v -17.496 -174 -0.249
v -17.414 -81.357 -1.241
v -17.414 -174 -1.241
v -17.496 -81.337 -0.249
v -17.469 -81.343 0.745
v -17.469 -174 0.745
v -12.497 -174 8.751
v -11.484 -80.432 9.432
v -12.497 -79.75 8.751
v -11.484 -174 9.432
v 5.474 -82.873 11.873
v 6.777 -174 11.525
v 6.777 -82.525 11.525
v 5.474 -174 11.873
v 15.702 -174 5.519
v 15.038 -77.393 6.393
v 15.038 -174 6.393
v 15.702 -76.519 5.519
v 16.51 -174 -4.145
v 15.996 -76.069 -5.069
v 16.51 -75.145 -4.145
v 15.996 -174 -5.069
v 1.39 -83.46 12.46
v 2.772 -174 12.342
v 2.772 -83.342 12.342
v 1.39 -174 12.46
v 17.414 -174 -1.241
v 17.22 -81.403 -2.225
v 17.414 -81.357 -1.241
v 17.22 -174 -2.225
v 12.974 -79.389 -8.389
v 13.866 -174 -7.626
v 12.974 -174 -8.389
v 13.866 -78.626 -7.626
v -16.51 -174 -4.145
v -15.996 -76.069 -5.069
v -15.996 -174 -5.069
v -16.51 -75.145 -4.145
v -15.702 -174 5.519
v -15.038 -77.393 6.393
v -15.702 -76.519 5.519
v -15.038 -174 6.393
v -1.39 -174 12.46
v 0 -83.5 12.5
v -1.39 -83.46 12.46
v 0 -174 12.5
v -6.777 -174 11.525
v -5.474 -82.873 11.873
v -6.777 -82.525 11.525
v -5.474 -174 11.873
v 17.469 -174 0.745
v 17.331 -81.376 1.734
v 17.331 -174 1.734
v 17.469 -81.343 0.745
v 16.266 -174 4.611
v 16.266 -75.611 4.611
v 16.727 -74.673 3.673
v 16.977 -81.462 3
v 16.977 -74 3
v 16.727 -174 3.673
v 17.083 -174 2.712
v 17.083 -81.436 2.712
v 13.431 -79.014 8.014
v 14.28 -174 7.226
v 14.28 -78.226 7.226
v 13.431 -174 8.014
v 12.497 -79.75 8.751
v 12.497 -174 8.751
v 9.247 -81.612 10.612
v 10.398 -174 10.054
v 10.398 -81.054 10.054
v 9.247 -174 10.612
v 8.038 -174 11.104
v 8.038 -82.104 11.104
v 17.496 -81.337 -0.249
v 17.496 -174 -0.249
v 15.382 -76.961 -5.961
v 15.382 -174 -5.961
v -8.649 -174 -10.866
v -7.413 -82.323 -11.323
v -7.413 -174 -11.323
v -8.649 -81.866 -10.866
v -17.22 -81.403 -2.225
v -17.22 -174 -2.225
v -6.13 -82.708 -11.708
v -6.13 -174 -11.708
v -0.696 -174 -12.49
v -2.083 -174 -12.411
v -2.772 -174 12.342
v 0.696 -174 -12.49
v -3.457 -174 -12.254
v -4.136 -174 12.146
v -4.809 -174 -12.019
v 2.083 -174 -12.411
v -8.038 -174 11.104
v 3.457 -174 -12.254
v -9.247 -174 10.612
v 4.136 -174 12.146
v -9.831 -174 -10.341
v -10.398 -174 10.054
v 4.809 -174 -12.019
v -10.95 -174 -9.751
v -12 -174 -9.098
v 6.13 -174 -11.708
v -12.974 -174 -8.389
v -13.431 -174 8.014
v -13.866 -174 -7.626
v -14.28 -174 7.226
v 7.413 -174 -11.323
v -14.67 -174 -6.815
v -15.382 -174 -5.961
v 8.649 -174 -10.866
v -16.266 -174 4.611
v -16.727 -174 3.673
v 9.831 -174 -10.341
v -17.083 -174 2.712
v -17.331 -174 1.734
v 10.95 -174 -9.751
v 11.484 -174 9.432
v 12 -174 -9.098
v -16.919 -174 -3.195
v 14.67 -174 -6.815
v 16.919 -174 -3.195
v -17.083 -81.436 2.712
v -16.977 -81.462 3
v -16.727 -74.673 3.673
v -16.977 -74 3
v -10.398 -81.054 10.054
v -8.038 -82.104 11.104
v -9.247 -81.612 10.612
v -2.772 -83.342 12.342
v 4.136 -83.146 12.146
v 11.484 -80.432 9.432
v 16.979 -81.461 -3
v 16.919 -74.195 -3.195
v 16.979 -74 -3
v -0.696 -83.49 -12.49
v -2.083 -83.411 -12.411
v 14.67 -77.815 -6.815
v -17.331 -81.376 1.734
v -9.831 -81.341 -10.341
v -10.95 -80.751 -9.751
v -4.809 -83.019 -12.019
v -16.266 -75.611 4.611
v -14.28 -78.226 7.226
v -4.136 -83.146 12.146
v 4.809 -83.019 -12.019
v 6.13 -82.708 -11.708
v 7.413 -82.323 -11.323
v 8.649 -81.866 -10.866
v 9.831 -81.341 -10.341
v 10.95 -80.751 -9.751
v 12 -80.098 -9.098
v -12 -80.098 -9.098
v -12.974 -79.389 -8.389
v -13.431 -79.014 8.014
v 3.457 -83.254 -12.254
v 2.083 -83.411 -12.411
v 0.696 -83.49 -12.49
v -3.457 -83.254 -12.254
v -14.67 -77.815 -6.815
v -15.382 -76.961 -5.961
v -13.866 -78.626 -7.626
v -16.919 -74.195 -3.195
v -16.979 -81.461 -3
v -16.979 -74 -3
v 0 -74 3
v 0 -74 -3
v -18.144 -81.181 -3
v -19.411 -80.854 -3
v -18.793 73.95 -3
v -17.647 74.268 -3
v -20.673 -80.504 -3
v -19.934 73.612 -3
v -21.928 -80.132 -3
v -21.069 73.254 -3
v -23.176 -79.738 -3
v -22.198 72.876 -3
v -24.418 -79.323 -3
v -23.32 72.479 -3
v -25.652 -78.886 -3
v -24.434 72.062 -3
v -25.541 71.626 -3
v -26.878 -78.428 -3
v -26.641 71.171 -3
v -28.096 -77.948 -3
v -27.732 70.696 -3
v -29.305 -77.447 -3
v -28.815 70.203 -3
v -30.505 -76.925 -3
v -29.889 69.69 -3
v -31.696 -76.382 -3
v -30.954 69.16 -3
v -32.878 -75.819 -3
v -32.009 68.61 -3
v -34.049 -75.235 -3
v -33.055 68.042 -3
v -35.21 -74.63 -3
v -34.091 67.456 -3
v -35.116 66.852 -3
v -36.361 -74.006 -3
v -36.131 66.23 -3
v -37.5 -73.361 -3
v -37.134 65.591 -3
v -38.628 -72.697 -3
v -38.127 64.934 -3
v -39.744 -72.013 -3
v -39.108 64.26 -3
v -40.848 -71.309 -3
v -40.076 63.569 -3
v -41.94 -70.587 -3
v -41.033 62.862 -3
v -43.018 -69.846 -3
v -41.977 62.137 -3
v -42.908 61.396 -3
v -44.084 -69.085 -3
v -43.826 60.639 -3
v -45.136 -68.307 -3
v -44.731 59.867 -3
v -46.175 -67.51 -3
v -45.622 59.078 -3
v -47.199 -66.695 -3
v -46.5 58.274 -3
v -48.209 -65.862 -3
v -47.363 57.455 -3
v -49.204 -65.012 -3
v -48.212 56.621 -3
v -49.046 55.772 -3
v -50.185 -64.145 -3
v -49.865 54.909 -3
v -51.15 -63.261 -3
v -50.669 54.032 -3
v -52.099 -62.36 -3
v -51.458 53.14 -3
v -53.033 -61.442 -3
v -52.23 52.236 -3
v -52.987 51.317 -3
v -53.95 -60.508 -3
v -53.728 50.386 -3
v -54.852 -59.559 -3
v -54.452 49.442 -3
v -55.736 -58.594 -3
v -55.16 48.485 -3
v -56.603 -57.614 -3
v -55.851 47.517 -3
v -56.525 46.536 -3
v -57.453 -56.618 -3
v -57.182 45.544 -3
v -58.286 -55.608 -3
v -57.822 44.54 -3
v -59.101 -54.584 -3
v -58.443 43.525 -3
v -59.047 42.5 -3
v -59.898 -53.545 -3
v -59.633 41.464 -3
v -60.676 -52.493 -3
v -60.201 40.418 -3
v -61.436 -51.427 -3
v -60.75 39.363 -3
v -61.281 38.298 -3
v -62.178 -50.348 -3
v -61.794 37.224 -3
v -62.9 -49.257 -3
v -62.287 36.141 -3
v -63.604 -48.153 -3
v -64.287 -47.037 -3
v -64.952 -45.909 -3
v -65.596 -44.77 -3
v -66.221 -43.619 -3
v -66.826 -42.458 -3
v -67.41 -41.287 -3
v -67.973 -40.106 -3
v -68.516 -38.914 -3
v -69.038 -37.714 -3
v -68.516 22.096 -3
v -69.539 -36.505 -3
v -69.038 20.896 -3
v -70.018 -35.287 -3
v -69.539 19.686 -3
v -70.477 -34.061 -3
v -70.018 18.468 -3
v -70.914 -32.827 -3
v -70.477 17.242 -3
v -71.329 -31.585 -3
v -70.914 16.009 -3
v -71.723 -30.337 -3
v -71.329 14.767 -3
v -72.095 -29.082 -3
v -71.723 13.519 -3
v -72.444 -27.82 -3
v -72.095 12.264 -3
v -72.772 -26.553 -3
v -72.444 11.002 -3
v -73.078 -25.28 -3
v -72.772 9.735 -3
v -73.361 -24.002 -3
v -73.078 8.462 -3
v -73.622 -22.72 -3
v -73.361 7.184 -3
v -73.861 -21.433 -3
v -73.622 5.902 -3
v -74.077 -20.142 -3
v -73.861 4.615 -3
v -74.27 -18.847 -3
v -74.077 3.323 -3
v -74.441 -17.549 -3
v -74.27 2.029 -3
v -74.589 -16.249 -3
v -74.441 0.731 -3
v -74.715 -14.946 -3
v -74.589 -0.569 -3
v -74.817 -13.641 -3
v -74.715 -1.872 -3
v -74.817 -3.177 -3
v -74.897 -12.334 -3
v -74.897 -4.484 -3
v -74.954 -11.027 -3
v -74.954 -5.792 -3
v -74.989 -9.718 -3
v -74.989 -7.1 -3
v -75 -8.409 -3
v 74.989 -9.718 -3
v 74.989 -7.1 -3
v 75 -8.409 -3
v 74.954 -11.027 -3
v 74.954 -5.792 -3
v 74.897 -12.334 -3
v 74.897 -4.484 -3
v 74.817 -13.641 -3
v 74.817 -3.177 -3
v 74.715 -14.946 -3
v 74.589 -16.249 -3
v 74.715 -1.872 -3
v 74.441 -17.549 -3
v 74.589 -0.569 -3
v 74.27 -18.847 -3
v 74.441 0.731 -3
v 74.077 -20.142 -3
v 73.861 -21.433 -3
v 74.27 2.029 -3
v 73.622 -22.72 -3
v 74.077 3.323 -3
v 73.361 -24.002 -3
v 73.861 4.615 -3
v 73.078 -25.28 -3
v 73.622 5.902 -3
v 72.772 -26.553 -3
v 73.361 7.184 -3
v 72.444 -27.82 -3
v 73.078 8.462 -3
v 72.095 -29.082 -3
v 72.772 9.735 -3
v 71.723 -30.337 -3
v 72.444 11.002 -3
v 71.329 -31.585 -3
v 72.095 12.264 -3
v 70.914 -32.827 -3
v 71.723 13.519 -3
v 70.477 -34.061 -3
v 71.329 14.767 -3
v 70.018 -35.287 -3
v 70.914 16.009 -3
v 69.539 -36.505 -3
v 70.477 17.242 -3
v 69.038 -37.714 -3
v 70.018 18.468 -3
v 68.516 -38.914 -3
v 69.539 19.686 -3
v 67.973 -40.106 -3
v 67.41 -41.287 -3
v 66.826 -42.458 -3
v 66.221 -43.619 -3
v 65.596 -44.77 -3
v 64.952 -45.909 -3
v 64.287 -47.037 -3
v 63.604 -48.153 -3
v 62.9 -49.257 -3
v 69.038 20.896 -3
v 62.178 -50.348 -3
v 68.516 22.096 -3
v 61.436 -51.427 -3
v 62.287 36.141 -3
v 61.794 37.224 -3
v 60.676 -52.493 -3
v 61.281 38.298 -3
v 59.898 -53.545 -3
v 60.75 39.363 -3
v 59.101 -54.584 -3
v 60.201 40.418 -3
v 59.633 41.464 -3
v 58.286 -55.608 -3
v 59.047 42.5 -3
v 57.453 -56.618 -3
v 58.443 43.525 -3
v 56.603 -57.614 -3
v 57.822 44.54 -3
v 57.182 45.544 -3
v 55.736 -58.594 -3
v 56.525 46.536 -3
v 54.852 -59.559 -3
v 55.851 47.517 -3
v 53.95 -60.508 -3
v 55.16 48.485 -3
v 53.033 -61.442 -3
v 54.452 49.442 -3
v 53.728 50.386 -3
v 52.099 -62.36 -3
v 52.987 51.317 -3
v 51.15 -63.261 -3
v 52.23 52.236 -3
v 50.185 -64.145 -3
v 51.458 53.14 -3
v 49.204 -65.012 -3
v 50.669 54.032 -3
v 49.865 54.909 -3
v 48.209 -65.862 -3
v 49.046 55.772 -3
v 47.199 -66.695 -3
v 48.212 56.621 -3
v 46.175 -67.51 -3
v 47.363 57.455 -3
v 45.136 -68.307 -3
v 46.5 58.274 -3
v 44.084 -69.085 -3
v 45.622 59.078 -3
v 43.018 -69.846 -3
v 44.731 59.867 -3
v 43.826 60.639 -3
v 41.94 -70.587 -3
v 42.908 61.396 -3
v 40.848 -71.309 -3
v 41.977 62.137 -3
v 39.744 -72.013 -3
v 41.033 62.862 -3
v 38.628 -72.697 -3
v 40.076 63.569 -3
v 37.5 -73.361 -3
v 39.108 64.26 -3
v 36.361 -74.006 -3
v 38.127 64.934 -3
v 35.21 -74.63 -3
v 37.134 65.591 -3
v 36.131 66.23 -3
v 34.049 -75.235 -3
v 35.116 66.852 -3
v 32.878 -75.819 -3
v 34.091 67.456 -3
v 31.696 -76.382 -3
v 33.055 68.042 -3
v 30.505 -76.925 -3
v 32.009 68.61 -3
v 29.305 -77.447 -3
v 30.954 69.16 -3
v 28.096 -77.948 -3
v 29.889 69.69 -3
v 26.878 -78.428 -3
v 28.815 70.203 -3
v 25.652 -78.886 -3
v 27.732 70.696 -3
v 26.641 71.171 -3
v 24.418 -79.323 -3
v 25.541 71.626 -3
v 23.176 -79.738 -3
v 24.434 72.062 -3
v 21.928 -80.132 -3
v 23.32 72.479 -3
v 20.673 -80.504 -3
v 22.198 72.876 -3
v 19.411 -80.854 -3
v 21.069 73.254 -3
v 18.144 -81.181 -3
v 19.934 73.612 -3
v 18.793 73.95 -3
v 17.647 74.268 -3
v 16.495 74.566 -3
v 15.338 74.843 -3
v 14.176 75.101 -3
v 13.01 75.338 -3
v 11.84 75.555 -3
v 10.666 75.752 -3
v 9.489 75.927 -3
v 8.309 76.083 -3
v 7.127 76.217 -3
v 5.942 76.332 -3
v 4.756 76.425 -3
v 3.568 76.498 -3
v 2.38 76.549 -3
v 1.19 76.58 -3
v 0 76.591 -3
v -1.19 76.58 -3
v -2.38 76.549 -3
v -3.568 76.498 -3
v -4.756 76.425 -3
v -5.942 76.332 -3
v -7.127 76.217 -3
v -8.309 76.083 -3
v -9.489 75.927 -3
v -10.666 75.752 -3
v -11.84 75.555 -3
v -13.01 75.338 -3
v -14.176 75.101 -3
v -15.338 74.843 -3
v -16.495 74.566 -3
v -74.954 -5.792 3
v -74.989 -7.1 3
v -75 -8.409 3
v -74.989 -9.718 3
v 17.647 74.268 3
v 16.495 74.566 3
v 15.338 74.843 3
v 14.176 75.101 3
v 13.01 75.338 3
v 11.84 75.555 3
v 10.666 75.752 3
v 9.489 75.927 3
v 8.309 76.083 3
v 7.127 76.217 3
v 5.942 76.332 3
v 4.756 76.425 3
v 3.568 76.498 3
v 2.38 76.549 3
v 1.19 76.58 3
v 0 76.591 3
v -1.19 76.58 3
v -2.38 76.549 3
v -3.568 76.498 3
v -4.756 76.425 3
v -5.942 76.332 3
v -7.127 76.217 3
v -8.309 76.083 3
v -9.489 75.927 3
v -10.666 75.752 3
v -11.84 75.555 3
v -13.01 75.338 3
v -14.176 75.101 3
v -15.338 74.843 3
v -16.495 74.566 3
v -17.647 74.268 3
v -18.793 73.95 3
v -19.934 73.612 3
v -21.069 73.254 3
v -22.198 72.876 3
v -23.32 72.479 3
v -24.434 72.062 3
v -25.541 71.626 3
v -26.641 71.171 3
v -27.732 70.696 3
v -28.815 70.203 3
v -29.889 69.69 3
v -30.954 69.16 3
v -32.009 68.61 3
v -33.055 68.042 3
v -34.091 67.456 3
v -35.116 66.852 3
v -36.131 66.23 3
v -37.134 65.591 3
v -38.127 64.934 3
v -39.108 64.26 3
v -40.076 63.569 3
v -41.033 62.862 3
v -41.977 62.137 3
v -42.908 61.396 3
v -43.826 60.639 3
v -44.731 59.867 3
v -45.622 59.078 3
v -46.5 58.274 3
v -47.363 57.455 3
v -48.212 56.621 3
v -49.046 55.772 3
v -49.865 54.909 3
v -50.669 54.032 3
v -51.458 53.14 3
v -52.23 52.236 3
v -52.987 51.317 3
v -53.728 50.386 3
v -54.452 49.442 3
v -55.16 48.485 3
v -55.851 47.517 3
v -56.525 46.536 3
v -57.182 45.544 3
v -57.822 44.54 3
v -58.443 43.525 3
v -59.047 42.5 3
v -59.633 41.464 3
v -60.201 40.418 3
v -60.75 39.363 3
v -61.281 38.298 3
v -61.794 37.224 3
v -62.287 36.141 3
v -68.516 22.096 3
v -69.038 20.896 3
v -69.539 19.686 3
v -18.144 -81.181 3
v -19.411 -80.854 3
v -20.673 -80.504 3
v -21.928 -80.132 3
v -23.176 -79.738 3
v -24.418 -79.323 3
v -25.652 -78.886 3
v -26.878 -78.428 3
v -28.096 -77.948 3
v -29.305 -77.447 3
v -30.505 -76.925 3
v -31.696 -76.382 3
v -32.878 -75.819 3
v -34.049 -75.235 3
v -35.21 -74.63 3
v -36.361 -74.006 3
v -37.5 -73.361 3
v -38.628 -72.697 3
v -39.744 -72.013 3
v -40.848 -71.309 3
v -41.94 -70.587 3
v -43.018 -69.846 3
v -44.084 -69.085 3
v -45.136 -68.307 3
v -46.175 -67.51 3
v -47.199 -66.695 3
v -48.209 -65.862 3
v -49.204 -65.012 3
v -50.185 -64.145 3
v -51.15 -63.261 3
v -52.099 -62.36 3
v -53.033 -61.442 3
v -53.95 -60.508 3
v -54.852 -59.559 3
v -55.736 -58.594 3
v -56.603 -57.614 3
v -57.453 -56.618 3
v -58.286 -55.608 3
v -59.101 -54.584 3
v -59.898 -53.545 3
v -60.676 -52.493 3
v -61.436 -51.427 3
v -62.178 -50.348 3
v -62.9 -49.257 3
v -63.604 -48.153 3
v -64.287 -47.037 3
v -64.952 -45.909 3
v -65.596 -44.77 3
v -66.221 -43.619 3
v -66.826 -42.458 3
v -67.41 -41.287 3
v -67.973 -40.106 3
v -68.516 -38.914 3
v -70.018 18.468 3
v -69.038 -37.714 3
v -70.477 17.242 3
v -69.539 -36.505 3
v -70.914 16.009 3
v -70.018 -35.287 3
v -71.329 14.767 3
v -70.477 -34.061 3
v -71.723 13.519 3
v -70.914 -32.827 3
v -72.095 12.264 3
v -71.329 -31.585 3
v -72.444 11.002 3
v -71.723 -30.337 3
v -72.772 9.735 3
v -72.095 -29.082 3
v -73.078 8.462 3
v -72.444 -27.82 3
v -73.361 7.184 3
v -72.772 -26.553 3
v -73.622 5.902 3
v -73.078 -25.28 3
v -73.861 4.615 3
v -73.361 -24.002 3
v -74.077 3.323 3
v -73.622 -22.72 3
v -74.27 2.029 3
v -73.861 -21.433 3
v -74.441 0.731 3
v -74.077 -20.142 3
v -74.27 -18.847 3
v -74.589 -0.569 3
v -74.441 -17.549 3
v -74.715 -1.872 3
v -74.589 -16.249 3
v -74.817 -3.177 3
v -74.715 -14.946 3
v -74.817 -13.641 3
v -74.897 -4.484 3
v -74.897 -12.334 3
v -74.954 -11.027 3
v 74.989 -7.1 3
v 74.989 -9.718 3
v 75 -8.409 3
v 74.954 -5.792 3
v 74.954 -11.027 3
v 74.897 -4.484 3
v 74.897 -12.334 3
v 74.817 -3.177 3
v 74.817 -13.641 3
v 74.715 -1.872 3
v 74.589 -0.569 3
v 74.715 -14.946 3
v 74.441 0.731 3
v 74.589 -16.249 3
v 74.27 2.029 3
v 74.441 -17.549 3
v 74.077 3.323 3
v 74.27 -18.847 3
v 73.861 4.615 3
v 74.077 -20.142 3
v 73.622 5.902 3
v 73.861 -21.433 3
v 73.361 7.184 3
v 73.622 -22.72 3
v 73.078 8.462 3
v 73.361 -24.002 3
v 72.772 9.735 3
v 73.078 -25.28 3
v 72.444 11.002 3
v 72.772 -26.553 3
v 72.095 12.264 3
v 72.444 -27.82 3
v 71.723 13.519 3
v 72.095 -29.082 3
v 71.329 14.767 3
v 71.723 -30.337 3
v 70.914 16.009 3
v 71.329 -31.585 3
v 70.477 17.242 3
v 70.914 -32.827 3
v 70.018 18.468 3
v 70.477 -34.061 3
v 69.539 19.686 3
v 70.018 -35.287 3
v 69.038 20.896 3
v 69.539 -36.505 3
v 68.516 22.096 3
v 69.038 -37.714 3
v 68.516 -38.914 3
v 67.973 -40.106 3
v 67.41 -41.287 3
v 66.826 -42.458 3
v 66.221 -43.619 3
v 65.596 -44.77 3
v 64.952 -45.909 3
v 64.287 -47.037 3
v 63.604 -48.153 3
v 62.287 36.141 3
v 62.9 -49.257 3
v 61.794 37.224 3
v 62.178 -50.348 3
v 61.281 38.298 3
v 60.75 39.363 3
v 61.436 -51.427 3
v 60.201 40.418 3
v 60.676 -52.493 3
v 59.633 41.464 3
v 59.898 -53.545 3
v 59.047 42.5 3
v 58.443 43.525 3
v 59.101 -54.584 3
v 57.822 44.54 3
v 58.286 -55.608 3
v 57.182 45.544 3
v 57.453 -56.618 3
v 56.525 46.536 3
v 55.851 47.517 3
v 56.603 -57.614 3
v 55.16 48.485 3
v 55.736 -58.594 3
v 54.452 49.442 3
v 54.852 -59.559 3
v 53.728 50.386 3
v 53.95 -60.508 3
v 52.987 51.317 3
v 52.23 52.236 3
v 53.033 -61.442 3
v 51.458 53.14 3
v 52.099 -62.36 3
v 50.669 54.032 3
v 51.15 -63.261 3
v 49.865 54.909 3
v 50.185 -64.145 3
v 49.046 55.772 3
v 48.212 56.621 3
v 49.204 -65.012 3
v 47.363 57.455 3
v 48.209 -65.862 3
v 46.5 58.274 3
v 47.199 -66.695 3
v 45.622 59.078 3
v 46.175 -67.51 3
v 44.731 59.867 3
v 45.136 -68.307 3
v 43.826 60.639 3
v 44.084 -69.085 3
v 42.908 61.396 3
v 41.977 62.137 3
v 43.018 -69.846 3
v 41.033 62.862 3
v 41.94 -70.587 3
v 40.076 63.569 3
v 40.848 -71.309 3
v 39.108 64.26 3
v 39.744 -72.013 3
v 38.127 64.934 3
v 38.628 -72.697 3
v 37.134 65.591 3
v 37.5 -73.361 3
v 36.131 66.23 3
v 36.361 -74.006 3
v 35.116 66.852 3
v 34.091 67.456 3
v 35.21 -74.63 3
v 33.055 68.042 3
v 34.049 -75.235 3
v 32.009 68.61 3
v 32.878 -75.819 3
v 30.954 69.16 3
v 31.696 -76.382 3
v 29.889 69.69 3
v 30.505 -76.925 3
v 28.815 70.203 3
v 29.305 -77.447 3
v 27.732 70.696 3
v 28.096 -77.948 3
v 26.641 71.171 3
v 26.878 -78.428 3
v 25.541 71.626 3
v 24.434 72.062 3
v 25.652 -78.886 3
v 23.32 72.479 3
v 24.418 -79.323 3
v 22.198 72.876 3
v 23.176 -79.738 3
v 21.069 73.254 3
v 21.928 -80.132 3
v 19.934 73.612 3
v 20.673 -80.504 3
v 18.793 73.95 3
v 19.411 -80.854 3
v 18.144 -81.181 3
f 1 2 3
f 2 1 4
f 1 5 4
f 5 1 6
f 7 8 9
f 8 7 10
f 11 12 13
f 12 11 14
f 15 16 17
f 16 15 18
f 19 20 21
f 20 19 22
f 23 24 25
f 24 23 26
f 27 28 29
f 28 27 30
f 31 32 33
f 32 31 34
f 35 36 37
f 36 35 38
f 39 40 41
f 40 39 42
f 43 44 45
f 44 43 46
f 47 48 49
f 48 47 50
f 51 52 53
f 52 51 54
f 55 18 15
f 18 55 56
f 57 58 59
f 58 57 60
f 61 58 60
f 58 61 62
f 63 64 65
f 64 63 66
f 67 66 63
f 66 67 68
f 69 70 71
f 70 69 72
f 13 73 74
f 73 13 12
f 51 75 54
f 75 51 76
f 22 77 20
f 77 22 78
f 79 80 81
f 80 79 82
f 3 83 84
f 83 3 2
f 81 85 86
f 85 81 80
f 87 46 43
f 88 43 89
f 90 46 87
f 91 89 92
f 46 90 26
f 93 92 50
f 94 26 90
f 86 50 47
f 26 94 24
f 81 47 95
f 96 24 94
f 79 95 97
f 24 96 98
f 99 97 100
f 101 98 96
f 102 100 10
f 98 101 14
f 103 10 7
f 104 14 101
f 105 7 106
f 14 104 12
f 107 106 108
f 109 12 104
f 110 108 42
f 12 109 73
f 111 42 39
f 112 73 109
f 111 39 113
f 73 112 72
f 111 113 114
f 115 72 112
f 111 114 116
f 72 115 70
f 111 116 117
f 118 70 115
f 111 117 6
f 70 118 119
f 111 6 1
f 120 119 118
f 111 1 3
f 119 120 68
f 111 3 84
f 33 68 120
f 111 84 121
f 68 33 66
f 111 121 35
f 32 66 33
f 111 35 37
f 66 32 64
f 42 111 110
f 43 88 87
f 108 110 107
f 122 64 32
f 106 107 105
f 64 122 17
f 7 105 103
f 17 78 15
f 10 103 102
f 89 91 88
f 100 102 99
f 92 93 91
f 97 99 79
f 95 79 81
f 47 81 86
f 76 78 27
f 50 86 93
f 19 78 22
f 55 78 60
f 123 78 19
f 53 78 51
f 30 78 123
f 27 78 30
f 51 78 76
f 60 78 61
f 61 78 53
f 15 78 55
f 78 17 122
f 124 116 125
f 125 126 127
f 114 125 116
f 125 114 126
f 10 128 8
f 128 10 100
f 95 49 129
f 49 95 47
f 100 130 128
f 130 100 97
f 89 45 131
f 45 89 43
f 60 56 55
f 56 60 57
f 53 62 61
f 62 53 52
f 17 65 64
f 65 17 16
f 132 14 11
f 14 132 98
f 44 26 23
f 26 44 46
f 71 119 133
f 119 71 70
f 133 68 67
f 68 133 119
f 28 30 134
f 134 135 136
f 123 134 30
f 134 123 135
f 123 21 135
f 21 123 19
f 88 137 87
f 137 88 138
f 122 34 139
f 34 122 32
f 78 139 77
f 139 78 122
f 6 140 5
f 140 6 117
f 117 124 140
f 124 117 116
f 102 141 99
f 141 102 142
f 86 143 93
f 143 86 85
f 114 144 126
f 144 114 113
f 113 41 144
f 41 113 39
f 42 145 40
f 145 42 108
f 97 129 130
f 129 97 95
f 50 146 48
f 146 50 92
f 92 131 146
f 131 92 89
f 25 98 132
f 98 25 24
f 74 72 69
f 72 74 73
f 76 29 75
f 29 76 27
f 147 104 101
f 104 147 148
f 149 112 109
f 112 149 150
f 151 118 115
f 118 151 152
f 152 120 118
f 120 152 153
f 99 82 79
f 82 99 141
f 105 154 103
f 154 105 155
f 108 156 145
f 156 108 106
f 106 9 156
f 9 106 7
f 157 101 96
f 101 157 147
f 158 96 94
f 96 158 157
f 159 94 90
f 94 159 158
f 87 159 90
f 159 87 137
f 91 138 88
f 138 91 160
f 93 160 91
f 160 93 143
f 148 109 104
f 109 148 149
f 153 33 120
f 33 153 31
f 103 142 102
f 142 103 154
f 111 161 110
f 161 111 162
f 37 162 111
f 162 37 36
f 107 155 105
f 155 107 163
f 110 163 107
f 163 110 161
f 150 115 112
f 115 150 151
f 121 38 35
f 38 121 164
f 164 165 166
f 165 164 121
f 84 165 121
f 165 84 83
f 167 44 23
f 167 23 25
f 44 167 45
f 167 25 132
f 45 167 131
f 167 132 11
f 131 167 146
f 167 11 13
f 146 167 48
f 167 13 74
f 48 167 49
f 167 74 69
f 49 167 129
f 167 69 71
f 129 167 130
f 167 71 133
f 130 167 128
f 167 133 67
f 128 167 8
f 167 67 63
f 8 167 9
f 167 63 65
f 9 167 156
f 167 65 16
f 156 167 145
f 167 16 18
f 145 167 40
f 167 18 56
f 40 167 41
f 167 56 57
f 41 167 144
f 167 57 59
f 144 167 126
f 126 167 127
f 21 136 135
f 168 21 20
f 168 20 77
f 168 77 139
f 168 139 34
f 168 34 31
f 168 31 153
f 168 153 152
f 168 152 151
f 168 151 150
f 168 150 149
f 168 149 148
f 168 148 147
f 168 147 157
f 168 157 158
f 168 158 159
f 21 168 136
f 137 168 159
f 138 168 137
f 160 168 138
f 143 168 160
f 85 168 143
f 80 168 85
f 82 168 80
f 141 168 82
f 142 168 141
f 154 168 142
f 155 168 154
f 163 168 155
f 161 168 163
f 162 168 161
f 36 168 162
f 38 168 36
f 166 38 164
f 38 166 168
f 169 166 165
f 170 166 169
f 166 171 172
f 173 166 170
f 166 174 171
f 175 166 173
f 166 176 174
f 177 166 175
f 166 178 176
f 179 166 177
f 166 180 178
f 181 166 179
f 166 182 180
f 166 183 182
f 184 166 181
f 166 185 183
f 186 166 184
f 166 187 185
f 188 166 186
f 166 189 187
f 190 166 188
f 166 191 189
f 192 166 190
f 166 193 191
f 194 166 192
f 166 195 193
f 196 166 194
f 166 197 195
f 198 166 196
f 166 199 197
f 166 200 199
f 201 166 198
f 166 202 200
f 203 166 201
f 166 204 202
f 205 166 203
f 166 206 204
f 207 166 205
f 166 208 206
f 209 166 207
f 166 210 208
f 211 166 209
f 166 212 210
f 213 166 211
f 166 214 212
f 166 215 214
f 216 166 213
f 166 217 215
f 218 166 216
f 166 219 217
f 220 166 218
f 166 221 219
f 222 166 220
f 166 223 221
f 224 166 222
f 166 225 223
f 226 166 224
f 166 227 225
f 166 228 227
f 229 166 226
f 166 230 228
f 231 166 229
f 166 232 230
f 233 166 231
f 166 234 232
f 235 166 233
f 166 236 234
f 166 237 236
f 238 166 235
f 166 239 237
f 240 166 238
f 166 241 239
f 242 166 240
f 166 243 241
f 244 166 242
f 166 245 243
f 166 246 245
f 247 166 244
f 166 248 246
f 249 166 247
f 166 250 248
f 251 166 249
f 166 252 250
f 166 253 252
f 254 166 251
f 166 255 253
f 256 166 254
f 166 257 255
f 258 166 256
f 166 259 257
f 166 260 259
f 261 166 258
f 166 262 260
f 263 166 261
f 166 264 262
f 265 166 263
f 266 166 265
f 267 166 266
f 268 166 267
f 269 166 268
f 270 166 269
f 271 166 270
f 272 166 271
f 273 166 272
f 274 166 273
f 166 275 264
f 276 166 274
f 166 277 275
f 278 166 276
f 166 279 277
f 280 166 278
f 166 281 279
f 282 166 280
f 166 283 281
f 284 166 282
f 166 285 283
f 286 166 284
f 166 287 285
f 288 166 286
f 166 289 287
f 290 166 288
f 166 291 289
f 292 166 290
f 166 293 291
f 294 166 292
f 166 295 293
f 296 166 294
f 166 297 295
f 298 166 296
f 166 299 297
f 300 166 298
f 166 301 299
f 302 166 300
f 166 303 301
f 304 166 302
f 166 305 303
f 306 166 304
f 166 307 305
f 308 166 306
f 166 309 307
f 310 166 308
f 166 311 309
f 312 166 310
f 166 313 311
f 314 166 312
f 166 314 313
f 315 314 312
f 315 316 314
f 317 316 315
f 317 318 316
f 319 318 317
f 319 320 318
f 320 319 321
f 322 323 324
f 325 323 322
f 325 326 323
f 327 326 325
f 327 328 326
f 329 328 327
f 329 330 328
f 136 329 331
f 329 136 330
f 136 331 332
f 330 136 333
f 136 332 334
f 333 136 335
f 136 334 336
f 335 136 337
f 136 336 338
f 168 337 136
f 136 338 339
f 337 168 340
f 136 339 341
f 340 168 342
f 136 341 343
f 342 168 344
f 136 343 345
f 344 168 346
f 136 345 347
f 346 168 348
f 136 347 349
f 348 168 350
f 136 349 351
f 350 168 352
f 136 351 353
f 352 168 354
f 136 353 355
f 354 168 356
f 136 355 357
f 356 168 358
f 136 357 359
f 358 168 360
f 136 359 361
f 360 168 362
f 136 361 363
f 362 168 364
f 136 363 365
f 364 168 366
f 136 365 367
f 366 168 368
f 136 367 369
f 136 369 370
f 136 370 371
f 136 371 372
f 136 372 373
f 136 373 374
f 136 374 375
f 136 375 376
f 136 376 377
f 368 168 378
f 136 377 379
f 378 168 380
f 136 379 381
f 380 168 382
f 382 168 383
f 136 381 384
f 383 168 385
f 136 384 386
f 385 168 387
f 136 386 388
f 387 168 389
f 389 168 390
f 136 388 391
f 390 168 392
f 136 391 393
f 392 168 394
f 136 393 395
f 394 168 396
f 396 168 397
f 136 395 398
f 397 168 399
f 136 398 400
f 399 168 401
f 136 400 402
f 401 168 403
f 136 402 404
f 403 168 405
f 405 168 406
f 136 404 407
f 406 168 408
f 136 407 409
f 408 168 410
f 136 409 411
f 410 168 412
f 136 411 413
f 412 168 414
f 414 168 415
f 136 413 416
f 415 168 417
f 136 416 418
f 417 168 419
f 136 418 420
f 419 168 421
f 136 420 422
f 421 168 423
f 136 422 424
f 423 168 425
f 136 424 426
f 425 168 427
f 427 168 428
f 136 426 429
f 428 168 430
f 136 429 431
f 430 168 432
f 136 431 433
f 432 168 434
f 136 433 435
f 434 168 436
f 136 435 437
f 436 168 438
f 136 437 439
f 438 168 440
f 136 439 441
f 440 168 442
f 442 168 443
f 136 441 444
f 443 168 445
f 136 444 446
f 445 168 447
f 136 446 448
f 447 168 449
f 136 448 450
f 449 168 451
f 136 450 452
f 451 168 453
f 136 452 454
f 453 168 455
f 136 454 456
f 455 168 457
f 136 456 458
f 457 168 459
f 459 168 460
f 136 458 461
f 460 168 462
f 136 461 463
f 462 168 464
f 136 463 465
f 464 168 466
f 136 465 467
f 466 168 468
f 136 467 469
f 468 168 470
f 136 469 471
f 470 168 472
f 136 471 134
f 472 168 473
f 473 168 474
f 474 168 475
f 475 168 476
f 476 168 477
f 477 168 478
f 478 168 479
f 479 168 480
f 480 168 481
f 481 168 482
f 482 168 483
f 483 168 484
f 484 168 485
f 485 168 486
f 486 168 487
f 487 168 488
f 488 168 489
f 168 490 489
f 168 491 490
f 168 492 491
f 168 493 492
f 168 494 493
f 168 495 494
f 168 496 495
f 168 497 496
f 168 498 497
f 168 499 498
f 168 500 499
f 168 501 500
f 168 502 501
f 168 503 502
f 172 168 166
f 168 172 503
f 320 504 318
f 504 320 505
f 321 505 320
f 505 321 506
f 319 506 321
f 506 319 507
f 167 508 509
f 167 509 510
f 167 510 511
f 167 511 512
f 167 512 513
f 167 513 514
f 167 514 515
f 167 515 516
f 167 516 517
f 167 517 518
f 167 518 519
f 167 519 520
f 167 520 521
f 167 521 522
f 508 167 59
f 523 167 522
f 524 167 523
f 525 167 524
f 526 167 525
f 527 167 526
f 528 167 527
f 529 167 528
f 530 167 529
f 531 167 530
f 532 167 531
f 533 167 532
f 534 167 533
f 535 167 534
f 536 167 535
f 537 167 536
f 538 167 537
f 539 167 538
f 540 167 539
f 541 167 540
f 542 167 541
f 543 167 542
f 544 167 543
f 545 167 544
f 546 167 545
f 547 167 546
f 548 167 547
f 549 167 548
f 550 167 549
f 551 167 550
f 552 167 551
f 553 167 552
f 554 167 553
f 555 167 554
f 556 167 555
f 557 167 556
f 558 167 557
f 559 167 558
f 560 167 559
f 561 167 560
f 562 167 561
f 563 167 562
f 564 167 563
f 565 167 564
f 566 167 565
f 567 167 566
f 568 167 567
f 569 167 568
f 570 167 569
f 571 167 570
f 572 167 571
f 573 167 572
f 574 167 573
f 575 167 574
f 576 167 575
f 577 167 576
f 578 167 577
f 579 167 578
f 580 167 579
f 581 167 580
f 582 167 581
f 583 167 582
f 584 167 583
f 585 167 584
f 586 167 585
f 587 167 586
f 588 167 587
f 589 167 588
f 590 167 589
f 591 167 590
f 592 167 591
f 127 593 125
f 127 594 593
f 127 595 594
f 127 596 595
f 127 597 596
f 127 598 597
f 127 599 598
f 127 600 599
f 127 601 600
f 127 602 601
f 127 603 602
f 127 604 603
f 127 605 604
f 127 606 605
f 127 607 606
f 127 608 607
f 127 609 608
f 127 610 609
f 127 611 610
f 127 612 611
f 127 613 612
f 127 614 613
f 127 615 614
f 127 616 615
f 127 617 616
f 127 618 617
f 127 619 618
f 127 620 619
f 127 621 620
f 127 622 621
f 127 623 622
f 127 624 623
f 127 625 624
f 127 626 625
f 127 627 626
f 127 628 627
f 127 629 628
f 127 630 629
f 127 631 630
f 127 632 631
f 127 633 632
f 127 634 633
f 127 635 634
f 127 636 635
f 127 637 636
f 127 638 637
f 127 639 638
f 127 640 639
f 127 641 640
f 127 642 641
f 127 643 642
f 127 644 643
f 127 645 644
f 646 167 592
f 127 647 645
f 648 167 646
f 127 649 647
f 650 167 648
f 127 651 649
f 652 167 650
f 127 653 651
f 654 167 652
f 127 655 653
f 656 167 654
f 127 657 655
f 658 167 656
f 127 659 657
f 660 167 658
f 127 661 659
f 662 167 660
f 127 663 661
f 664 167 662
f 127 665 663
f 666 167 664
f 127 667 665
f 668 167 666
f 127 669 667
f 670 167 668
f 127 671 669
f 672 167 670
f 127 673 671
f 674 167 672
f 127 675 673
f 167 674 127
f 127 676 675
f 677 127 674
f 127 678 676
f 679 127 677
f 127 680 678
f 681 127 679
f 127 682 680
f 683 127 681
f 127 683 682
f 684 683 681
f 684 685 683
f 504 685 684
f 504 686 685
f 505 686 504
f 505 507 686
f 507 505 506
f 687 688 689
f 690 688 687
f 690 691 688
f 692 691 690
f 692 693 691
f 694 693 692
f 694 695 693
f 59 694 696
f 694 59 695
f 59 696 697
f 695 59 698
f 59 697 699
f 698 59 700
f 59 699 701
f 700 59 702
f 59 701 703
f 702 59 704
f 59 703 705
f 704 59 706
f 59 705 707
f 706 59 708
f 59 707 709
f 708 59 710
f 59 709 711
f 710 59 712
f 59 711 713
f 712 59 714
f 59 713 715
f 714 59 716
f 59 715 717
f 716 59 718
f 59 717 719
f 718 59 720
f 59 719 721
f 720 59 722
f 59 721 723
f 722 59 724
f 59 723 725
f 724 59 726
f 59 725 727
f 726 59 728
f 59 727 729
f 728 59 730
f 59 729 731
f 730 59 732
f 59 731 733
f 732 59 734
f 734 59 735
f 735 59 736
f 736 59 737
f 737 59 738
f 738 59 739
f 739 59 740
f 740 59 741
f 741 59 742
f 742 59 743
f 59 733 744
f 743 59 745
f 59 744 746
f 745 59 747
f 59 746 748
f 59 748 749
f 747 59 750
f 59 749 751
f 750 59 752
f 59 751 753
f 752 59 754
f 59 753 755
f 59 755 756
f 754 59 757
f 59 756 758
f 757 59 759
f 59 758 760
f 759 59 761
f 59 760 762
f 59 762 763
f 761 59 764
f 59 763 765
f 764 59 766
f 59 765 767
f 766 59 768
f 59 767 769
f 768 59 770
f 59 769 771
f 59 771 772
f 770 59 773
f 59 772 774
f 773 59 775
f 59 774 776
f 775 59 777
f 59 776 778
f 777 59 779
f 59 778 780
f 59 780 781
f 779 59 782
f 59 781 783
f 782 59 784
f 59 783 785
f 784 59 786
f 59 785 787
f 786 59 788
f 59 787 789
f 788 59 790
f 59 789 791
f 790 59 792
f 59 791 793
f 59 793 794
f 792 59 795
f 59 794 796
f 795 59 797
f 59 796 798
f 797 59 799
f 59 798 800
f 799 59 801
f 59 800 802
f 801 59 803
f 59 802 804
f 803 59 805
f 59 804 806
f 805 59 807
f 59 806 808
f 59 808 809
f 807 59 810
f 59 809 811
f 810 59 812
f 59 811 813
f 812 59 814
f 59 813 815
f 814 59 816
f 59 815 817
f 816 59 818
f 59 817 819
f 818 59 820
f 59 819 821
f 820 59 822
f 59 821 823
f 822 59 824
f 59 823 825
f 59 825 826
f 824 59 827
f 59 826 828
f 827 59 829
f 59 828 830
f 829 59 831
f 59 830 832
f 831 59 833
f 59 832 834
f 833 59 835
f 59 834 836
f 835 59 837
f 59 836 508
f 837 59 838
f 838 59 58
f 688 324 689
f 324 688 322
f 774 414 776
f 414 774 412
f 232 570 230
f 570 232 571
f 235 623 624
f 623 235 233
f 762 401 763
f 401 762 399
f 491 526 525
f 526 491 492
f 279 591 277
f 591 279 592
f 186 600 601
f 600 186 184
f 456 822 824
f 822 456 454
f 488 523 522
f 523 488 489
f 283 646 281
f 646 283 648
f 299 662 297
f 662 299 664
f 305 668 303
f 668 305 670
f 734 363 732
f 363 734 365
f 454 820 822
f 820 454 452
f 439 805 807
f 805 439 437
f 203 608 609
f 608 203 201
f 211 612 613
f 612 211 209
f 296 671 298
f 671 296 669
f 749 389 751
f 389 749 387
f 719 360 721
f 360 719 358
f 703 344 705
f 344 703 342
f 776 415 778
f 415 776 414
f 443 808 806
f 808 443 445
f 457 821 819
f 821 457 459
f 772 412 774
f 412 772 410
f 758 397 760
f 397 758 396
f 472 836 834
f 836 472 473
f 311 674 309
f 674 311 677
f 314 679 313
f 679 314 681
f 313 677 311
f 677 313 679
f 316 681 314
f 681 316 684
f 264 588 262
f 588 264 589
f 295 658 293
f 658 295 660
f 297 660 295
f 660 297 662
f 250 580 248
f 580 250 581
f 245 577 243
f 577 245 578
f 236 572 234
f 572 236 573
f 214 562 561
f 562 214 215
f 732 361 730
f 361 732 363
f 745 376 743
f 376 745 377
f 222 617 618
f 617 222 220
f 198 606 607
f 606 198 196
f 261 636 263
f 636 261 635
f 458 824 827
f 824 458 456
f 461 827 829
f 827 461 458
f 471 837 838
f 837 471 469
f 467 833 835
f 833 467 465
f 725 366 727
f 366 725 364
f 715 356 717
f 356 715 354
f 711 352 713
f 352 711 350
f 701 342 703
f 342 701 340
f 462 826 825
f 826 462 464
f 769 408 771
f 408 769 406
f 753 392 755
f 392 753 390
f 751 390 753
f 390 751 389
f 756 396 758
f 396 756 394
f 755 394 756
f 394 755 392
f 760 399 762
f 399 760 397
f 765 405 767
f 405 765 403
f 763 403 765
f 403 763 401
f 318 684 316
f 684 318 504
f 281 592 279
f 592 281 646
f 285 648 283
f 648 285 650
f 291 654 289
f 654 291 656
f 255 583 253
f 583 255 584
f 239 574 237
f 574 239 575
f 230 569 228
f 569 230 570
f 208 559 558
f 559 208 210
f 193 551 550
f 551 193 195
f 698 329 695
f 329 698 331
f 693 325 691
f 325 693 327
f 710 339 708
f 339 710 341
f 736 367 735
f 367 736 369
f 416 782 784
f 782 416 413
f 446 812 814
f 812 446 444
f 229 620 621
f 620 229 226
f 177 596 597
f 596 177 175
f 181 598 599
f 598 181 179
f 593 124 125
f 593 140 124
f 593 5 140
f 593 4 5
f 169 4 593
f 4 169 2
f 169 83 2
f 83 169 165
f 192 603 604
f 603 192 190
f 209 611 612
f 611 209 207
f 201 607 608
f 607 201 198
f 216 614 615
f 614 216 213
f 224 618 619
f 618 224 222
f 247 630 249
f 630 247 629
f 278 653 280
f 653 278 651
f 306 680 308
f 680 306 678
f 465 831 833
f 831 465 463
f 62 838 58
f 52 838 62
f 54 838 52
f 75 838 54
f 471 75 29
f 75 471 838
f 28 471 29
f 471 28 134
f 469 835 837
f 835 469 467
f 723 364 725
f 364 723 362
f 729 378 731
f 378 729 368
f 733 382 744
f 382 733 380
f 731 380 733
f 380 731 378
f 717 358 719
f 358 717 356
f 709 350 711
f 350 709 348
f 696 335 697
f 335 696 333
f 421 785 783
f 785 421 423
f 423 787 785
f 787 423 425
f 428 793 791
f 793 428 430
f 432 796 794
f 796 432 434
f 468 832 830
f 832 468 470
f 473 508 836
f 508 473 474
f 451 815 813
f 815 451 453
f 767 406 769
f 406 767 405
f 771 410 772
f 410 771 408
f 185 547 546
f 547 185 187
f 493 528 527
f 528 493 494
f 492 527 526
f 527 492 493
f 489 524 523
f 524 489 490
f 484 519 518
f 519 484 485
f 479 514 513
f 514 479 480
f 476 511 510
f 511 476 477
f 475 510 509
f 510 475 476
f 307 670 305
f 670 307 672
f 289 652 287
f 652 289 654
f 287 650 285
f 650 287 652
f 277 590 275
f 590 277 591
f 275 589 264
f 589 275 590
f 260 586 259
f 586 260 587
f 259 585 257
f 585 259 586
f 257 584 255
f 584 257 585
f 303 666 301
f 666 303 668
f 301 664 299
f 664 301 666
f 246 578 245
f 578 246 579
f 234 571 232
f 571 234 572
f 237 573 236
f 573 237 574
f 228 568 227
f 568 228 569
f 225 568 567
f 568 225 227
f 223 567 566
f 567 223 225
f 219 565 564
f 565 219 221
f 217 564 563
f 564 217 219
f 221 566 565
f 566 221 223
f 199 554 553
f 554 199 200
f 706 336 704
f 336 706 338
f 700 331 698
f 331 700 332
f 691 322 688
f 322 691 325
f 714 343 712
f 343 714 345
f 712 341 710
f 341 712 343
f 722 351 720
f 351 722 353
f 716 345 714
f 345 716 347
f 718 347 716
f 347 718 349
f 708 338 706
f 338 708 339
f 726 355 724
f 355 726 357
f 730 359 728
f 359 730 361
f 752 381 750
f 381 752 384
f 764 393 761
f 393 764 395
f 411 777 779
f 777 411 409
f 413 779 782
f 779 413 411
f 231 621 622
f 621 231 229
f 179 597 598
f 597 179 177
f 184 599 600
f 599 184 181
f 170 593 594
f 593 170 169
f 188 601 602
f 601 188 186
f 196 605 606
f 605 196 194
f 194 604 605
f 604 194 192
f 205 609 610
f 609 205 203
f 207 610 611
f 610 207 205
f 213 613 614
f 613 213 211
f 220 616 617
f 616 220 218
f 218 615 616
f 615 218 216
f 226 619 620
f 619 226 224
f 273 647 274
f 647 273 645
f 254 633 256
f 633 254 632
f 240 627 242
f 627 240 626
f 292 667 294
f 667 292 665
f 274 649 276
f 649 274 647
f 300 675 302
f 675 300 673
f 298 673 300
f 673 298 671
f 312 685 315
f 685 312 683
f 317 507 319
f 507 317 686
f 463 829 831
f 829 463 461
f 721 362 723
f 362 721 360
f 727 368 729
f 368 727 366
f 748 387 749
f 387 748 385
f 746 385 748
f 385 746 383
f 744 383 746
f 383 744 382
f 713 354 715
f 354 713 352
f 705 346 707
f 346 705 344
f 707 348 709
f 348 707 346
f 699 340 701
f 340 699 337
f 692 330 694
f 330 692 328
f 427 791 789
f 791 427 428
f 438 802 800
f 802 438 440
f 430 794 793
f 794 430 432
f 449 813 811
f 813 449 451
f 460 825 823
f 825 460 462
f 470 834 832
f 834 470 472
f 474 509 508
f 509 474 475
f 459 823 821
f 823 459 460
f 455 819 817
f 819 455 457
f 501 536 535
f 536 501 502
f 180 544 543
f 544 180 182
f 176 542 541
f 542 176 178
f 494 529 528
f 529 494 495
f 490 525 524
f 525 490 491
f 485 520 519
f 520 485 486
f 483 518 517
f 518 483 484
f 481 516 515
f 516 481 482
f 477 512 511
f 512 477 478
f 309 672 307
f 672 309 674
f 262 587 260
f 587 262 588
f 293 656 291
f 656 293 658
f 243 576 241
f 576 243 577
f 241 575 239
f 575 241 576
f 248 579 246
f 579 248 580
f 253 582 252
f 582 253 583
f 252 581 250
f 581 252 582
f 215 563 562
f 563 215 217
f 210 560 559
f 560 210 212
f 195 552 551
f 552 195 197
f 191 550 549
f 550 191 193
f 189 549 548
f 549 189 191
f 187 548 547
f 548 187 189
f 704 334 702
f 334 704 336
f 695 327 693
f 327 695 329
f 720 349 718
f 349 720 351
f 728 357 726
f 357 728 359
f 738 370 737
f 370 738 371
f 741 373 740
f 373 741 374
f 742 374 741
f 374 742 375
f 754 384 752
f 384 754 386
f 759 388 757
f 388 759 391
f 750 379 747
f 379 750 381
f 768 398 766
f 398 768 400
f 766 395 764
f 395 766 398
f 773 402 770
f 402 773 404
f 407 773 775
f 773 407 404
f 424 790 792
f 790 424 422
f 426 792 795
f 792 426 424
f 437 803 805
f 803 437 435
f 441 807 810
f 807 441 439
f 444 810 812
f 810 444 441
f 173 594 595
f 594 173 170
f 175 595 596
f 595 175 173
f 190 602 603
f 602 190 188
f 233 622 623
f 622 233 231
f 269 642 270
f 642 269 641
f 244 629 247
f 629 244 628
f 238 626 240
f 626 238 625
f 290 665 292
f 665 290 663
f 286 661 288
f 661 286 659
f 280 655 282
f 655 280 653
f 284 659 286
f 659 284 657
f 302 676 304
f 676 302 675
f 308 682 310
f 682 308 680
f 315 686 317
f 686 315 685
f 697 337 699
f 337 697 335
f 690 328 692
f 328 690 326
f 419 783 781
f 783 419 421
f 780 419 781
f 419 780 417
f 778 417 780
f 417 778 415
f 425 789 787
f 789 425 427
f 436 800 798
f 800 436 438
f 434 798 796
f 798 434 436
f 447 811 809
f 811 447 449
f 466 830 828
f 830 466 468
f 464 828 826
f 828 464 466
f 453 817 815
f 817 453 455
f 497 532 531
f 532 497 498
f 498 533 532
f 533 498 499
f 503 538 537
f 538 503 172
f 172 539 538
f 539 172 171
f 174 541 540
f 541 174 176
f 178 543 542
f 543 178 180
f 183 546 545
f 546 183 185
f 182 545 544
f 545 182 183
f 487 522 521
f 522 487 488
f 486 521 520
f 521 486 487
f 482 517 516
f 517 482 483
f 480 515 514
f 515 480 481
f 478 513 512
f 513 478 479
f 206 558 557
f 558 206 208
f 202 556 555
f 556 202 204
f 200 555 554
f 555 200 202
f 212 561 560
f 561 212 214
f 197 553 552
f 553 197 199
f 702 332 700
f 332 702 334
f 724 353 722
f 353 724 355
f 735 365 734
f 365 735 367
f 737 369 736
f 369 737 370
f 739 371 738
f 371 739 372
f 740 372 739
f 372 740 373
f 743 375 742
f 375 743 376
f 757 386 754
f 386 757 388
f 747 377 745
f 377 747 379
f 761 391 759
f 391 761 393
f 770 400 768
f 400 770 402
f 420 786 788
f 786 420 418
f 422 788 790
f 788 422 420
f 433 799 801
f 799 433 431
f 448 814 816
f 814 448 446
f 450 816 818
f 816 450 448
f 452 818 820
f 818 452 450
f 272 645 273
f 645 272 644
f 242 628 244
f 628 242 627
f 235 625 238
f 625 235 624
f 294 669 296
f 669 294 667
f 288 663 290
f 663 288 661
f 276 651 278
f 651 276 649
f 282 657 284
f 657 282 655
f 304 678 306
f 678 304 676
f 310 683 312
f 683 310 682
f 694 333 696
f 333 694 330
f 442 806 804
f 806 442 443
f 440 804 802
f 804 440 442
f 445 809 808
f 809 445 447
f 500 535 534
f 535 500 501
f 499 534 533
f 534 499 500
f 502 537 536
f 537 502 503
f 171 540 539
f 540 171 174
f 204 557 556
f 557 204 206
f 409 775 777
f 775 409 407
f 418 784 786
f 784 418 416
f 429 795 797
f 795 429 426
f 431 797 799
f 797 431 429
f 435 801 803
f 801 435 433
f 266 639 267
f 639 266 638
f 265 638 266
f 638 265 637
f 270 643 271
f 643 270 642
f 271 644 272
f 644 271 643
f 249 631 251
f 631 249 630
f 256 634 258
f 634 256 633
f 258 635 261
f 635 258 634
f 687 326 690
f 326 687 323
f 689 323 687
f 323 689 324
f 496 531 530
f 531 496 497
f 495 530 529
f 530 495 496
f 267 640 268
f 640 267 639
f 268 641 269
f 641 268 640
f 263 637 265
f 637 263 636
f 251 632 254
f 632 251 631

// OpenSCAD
handle_length = 100;
handle_style = "straight"; // flared, anatomic, rounded, square, flat, donic, conic 
handle_thickness = 25;
handle_width = 35;
handle_offset = 0;

blade_width = 150;
blade_length = 160;
blade_thickness = 6;
blade_shape = "pear"; // oval, pear, square

$fs = 1;
$fa = 1;

module paddle() {
    // Blade
    translate([0, 0, -blade_thickness / 2]) linear_extrude(blade_thickness) {
        if ( "oval" == blade_shape ) {
            scale([1, blade_length / blade_width, 1]) circle(r=blade_width/2);
        }
        else if ( "pear" == blade_shape ) {
            hull() {
                offset = blade_length - ( blade_width / 2 ) - ( blade_width / 2.2 );
                
                translate([0, -offset / 2, 0]) {
                    translate([0, offset, 0]) circle(r=blade_width / 2.2 );
                    circle(r=blade_width / 2);
                }
            }
        }
        else if ( "square" == blade_shape ) {
            square([blade_width, blade_length], true);
        }
    }
    
    // Handle
    translate([0, -(blade_length / 2) - handle_offset + blade_thickness, 0]) rotate([90, 0, 0]) rotate([0, 0, 90]) {
        intersection() {
            union() {
                if ( "straight" == handle_style ) {
                    linear_extrude(handle_length) scale([1, handle_width / handle_thickness, 1]) circle(r=handle_thickness/2);
                }
            }
            
            vertical_offset = sqrt( 2 * pow(handle_length / 2, 2)) - ( blade_thickness / 2 );
            
            translate([0, 0, vertical_offset]) rotate([0, 45, 0]) cube([handle_length, handle_length, handle_length], true); 
        }
    }
}

paddle();
